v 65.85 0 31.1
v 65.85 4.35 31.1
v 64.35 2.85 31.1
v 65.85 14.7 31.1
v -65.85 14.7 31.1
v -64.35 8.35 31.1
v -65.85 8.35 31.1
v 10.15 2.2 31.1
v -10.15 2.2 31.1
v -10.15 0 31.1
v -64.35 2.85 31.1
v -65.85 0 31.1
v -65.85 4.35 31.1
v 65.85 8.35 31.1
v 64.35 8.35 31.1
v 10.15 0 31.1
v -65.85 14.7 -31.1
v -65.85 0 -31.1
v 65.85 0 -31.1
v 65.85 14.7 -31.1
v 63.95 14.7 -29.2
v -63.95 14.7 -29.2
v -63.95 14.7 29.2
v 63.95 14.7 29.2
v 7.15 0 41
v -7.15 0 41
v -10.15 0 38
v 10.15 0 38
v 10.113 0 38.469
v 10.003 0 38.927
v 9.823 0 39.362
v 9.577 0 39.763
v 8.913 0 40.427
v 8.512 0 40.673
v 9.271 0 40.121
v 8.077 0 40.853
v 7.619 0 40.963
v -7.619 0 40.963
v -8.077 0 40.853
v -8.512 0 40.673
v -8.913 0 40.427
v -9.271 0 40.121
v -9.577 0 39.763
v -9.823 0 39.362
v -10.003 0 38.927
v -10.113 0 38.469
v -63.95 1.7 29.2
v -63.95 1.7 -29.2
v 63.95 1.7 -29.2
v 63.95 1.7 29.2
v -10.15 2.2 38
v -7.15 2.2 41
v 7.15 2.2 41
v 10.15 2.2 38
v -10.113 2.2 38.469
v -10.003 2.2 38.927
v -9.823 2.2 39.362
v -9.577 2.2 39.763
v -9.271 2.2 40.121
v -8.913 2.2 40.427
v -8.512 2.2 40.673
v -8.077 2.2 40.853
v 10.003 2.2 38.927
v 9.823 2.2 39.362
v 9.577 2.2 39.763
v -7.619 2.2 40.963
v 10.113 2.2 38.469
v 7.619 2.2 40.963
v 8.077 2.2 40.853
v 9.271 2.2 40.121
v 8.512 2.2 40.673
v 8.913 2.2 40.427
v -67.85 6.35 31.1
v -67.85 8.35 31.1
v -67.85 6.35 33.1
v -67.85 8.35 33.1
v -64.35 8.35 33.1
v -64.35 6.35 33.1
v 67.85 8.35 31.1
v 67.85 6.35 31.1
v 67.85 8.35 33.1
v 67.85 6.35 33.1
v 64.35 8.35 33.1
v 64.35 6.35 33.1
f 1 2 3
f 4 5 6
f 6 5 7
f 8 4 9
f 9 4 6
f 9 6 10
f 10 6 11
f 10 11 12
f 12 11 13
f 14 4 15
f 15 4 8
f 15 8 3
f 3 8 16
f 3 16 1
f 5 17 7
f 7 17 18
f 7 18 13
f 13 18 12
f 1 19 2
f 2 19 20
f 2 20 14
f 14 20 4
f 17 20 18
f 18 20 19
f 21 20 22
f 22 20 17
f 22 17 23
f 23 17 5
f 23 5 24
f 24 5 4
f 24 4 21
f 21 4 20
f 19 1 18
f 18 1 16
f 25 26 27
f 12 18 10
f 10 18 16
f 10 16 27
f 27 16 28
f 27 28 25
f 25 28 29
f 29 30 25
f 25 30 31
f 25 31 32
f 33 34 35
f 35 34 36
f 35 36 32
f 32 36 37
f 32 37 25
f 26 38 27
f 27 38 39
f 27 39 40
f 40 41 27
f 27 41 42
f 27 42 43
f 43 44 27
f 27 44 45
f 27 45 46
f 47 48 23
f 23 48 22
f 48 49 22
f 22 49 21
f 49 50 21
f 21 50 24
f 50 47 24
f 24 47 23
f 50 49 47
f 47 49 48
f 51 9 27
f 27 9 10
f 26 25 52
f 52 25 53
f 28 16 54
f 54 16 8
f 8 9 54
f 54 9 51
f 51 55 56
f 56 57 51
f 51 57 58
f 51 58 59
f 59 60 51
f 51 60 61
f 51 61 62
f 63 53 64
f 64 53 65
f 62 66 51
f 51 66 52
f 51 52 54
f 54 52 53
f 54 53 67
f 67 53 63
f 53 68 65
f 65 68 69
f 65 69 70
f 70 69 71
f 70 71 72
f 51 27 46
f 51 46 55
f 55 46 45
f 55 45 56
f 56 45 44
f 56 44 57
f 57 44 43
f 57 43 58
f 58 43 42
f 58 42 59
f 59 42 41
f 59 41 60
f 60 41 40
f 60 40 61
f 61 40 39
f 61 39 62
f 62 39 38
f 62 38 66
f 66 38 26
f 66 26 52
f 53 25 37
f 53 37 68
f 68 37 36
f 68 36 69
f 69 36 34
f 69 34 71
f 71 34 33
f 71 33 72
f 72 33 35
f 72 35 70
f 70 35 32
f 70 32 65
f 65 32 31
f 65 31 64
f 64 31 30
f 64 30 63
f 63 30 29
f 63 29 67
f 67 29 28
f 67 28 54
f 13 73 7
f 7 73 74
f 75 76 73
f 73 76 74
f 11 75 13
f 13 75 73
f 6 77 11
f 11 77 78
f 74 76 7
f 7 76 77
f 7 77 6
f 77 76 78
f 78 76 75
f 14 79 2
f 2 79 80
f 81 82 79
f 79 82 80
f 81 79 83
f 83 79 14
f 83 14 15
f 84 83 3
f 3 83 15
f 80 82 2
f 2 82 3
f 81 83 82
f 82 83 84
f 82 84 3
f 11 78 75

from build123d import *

# Parameters (mm, degrees)
SKETCH2_W           = 131.7
SKETCH2_H           = 62.2
BOSS_EXTRUDE1_DEPTH = 14.7
SKETCH3_W           = 127.9
SKETCH3_H           = 58.4
CUT_EXTRUDE1_DEPTH  = 13
SKETCH4_W           = 20.3
SKETCH4_H           = 9.9
BOSS_EXTRUDE2_DEPTH = 2.2
FILLET1_R           = 3
SKETCH5_W           = 1.5
SKETCH5_H           = 2
SKETCH5_W_2         = 2
BOSS_EXTRUDE3_DEPTH = 2
CUT_EXTRUDE2_DEPTH  = 200


with BuildPart() as part:
    # Sketch2 → Boss-Extrude1 (new body)
    with BuildSketch(Plane(origin=(0, 0, 0), x_dir=(1, 0, 0), z_dir=(0, 1, 0))):
        Rectangle(SKETCH2_W, SKETCH2_H)
    extrude(amount=BOSS_EXTRUDE1_DEPTH)

    # Sketch3 → Cut-Extrude1 (cut)
    with BuildSketch(Plane(origin=(0, 14.7, 0), x_dir=(1, 0, 0), z_dir=(0, 1, 0))):
        Rectangle(SKETCH3_W, SKETCH3_H)
    extrude(amount=-CUT_EXTRUDE1_DEPTH, mode=Mode.SUBTRACT)

    # Sketch4 → Boss-Extrude2 (add)
    with BuildSketch(Plane.XZ):
        with Locations((0, 36.05)):
            Rectangle(SKETCH4_W, SKETCH4_H)
    extrude(amount=-BOSS_EXTRUDE2_DEPTH)

    # Fillet1
    fillet1_edges = [part.edges().sort_by_distance(p)[0] for p in [
        (-10.15, 1.1, 41),
        (10.15, 1.1, 41),
    ]]
    fillet(fillet1_edges, radius=FILLET1_R)

    # Sketch5 → Boss-Extrude3 (add)
    with BuildSketch(Plane.XY.offset(31.1)):
        with Locations((-65.1, 7.35)):
            Rectangle(SKETCH5_W, SKETCH5_H)
        with Locations((-66.85, 7.35)):
            Rectangle(SKETCH5_W_2, SKETCH5_H)
        Polygon((-65.85, 4.35), (-65.85, 6.35), (-67.85, 6.35), align=None)
        Polygon((-64.35, 6.35), (-65.85, 6.35), (-65.85, 4.35), (-64.35, 2.85), align=None)
    boss_extrude3 = extrude(amount=BOSS_EXTRUDE3_DEPTH)

    # Mirror1: Boss-Extrude3 across plane
    add(boss_extrude3.mirror(Plane(origin=(0, 0, 0), x_dir=(0, 0, 1), z_dir=(1, 0, 0))))

    # Sketch6 → Cut-Extrude2 (cut, symmetric)
    with BuildSketch(Plane.ZY.offset(65.85)):
        Polygon((33.1, 6.35), (31.1, 2.85), (33.1, 2.85), align=None)
    extrude(amount=CUT_EXTRUDE2_DEPTH, both=True, mode=Mode.SUBTRACT)


solid = part.part
